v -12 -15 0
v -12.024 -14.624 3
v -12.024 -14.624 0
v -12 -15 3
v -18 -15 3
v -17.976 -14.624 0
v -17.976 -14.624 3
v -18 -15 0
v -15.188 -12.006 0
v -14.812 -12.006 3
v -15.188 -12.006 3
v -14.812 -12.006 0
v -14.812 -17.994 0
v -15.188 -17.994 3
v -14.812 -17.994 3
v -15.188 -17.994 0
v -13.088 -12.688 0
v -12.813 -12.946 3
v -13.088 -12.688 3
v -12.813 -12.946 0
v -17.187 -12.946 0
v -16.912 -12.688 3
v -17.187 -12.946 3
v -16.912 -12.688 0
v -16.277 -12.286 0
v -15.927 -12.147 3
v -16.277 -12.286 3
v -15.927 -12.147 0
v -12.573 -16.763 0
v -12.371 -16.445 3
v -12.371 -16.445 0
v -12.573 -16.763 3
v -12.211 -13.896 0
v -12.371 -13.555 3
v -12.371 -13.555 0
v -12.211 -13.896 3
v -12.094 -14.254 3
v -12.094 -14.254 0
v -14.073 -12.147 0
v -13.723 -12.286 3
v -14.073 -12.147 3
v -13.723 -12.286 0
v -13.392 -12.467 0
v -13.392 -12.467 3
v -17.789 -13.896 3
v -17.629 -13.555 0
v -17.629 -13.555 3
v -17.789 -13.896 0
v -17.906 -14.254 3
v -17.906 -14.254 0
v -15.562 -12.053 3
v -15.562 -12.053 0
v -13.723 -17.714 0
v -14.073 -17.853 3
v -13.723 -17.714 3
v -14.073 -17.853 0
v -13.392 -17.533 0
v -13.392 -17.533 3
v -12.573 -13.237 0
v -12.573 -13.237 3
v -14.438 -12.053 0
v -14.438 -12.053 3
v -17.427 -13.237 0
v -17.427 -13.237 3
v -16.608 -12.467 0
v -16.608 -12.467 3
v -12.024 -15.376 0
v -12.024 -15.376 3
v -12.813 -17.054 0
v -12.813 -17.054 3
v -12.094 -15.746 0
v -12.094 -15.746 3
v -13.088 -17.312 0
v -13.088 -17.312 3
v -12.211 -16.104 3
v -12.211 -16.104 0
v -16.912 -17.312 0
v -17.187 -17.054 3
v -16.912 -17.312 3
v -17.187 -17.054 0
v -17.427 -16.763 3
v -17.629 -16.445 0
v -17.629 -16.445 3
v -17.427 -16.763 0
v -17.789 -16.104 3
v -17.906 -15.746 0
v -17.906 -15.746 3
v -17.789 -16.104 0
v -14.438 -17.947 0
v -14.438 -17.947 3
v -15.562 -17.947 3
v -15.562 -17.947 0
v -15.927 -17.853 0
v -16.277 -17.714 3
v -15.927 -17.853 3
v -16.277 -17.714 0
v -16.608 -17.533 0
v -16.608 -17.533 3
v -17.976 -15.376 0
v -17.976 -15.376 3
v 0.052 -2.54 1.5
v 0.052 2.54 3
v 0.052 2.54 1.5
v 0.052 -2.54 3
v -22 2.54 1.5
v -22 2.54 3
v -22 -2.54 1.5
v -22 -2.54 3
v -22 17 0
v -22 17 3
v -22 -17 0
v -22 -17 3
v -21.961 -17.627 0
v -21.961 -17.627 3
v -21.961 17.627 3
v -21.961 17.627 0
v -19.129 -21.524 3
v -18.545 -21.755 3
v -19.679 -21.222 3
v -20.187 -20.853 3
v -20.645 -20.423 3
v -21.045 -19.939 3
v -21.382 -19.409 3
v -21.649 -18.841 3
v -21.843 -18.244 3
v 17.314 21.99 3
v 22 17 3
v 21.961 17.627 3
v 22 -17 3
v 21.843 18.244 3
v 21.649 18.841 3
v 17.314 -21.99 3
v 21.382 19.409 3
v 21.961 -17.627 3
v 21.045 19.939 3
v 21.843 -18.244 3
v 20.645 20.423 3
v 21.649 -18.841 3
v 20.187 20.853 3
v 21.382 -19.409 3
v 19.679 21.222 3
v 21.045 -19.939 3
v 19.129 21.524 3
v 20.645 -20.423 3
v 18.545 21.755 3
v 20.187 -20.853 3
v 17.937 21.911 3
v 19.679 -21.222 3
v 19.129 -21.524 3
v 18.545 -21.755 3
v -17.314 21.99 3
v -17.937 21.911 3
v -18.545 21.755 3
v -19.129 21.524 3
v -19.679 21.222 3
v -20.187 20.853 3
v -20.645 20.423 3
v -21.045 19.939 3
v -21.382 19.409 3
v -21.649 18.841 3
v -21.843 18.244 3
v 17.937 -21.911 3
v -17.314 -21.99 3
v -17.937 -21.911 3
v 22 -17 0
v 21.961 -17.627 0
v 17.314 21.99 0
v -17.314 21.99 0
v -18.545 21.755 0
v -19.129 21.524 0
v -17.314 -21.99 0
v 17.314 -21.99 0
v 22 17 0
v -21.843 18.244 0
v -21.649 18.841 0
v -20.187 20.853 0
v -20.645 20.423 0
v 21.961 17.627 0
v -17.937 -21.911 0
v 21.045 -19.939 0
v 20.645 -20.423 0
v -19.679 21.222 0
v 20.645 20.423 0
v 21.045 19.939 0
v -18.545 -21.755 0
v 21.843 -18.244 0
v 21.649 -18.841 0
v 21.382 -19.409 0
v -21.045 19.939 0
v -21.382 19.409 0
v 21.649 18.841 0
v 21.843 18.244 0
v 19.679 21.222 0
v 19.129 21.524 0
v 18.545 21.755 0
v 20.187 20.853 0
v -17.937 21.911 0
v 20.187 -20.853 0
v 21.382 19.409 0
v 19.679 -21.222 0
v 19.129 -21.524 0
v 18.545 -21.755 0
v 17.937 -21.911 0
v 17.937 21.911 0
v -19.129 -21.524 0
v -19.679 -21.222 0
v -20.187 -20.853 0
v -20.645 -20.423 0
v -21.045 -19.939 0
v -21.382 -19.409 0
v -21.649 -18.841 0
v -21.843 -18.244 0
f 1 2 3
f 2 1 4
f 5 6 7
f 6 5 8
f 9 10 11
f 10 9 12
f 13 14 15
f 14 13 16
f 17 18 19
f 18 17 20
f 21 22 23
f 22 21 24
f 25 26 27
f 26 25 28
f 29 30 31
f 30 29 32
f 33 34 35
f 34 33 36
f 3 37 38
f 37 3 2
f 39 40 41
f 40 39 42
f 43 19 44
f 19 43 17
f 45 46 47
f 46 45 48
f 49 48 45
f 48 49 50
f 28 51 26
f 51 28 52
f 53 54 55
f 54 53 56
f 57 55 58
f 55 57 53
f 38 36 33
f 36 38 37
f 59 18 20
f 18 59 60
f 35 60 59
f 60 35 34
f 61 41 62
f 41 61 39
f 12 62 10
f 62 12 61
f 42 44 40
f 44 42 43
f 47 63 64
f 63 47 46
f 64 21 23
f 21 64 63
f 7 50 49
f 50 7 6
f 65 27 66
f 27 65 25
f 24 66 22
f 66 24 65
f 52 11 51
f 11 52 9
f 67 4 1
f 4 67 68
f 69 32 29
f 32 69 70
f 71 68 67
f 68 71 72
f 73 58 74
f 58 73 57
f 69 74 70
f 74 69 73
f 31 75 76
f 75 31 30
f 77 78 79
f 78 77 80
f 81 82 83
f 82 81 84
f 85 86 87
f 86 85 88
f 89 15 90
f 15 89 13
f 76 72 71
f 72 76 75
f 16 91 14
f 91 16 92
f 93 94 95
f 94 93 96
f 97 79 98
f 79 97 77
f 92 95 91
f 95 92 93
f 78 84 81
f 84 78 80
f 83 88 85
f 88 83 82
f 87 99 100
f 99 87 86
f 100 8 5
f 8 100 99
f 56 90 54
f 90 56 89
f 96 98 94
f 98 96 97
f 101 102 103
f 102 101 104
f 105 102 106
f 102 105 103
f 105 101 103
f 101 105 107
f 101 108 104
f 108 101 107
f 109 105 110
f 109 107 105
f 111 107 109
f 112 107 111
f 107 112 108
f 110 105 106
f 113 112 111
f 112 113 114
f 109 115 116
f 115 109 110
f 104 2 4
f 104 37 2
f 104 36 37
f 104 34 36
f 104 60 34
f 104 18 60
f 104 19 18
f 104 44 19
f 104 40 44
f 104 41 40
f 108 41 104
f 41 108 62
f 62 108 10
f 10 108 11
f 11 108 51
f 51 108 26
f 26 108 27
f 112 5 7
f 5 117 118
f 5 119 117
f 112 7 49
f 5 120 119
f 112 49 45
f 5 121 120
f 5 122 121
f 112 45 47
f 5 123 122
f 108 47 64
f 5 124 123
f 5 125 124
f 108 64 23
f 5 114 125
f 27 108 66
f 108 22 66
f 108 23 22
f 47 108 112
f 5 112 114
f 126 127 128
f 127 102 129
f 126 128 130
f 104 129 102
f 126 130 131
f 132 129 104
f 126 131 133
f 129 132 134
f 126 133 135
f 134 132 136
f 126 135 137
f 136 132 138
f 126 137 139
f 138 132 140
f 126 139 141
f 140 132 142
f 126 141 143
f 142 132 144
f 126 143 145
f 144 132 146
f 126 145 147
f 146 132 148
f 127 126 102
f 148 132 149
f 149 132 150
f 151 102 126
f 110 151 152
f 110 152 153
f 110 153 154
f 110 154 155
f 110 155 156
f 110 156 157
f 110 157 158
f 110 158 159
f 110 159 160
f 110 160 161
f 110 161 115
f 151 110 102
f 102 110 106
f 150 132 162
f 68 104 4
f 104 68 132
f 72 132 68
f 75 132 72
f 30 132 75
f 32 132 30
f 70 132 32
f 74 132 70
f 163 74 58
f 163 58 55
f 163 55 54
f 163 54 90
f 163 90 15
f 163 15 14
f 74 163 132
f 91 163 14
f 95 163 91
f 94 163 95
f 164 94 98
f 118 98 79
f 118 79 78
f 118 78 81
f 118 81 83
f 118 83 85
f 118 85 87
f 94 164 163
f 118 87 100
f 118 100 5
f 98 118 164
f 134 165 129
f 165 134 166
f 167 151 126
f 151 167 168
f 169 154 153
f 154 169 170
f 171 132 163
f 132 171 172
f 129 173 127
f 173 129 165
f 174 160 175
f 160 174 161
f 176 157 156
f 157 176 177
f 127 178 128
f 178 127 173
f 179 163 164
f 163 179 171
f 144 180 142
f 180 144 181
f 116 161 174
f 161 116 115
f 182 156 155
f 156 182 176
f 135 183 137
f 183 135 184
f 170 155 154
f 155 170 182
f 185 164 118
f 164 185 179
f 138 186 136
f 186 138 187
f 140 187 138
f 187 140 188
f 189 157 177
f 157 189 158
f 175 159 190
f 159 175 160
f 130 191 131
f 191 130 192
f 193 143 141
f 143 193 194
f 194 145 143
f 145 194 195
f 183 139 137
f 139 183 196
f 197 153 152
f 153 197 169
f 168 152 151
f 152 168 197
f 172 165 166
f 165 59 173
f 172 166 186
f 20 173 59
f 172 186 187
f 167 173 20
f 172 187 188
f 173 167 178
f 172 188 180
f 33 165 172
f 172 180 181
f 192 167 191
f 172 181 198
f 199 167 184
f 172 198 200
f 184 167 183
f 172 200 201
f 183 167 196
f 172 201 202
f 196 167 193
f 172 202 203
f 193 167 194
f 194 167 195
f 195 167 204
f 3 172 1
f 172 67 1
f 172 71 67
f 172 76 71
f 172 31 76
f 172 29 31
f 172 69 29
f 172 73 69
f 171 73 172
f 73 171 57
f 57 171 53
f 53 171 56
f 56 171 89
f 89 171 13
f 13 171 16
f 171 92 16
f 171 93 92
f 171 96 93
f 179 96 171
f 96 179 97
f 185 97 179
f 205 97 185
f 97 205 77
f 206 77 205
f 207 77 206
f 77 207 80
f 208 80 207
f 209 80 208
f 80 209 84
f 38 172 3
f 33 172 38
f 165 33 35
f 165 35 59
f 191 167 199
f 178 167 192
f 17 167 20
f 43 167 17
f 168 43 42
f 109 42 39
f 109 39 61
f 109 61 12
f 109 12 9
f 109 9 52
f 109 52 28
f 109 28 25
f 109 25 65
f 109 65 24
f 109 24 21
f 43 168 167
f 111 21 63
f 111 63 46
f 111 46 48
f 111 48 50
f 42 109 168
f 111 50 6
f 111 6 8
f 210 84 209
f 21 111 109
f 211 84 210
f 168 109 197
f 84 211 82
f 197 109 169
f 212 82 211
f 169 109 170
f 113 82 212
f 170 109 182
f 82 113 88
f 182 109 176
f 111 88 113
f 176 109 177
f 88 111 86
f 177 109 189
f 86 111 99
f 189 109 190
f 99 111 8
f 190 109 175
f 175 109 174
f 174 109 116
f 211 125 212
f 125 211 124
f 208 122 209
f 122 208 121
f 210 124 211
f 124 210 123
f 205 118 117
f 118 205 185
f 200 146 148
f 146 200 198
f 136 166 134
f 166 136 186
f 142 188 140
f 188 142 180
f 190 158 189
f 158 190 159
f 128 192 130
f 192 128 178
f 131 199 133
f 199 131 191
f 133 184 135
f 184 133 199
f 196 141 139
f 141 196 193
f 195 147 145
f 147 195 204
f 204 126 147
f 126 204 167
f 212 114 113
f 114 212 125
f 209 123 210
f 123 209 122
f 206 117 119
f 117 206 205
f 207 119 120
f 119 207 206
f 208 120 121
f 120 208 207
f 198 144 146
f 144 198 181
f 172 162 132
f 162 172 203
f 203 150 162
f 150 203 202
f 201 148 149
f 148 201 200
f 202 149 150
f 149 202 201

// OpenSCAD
$fn = 50;


difference() {
	union() {
		translate(v = [0, 0, 0]) {
			rotate(a = [0, 0, 0]) {
				hull() {
					translate(v = [-17.0000000000, 17.0000000000, 0]) {
						rotate(a = [0, 0, 0]) {
							translate(v = [0, 0, 0]) {
								rotate(a = [0, 0, 0]) {
									cylinder(h = 3, r = 5);
								}
							}
						}
					}
					translate(v = [17.0000000000, 17.0000000000, 0]) {
						rotate(a = [0, 0, 0]) {
							translate(v = [0, 0, 0]) {
								rotate(a = [0, 0, 0]) {
									cylinder(h = 3, r = 5);
								}
							}
						}
					}
					translate(v = [-17.0000000000, -17.0000000000, 0]) {
						rotate(a = [0, 0, 0]) {
							translate(v = [0, 0, 0]) {
								rotate(a = [0, 0, 0]) {
									cylinder(h = 3, r = 5);
								}
							}
						}
					}
					translate(v = [17.0000000000, -17.0000000000, 0]) {
						rotate(a = [0, 0, 0]) {
							translate(v = [0, 0, 0]) {
								rotate(a = [0, 0, 0]) {
									cylinder(h = 3, r = 5);
								}
							}
						}
					}
				}
			}
		}
	}
	union() {
		translate(v = [-15.0000000000, -15.0000000000, -125.0000000000]) {
			rotate(a = [0, 0, 0]) {
				cylinder(h = 250, r = 3.0000000000);
			}
		}
		#translate(v = [-22.4880000000, -2.5400000000, 1.5000000000]) {
			rotate(a = [0, 0, 0]) {
				cube(size = [22.5400000000, 5.0800000000, 3]);
			}
		}
	}
}
